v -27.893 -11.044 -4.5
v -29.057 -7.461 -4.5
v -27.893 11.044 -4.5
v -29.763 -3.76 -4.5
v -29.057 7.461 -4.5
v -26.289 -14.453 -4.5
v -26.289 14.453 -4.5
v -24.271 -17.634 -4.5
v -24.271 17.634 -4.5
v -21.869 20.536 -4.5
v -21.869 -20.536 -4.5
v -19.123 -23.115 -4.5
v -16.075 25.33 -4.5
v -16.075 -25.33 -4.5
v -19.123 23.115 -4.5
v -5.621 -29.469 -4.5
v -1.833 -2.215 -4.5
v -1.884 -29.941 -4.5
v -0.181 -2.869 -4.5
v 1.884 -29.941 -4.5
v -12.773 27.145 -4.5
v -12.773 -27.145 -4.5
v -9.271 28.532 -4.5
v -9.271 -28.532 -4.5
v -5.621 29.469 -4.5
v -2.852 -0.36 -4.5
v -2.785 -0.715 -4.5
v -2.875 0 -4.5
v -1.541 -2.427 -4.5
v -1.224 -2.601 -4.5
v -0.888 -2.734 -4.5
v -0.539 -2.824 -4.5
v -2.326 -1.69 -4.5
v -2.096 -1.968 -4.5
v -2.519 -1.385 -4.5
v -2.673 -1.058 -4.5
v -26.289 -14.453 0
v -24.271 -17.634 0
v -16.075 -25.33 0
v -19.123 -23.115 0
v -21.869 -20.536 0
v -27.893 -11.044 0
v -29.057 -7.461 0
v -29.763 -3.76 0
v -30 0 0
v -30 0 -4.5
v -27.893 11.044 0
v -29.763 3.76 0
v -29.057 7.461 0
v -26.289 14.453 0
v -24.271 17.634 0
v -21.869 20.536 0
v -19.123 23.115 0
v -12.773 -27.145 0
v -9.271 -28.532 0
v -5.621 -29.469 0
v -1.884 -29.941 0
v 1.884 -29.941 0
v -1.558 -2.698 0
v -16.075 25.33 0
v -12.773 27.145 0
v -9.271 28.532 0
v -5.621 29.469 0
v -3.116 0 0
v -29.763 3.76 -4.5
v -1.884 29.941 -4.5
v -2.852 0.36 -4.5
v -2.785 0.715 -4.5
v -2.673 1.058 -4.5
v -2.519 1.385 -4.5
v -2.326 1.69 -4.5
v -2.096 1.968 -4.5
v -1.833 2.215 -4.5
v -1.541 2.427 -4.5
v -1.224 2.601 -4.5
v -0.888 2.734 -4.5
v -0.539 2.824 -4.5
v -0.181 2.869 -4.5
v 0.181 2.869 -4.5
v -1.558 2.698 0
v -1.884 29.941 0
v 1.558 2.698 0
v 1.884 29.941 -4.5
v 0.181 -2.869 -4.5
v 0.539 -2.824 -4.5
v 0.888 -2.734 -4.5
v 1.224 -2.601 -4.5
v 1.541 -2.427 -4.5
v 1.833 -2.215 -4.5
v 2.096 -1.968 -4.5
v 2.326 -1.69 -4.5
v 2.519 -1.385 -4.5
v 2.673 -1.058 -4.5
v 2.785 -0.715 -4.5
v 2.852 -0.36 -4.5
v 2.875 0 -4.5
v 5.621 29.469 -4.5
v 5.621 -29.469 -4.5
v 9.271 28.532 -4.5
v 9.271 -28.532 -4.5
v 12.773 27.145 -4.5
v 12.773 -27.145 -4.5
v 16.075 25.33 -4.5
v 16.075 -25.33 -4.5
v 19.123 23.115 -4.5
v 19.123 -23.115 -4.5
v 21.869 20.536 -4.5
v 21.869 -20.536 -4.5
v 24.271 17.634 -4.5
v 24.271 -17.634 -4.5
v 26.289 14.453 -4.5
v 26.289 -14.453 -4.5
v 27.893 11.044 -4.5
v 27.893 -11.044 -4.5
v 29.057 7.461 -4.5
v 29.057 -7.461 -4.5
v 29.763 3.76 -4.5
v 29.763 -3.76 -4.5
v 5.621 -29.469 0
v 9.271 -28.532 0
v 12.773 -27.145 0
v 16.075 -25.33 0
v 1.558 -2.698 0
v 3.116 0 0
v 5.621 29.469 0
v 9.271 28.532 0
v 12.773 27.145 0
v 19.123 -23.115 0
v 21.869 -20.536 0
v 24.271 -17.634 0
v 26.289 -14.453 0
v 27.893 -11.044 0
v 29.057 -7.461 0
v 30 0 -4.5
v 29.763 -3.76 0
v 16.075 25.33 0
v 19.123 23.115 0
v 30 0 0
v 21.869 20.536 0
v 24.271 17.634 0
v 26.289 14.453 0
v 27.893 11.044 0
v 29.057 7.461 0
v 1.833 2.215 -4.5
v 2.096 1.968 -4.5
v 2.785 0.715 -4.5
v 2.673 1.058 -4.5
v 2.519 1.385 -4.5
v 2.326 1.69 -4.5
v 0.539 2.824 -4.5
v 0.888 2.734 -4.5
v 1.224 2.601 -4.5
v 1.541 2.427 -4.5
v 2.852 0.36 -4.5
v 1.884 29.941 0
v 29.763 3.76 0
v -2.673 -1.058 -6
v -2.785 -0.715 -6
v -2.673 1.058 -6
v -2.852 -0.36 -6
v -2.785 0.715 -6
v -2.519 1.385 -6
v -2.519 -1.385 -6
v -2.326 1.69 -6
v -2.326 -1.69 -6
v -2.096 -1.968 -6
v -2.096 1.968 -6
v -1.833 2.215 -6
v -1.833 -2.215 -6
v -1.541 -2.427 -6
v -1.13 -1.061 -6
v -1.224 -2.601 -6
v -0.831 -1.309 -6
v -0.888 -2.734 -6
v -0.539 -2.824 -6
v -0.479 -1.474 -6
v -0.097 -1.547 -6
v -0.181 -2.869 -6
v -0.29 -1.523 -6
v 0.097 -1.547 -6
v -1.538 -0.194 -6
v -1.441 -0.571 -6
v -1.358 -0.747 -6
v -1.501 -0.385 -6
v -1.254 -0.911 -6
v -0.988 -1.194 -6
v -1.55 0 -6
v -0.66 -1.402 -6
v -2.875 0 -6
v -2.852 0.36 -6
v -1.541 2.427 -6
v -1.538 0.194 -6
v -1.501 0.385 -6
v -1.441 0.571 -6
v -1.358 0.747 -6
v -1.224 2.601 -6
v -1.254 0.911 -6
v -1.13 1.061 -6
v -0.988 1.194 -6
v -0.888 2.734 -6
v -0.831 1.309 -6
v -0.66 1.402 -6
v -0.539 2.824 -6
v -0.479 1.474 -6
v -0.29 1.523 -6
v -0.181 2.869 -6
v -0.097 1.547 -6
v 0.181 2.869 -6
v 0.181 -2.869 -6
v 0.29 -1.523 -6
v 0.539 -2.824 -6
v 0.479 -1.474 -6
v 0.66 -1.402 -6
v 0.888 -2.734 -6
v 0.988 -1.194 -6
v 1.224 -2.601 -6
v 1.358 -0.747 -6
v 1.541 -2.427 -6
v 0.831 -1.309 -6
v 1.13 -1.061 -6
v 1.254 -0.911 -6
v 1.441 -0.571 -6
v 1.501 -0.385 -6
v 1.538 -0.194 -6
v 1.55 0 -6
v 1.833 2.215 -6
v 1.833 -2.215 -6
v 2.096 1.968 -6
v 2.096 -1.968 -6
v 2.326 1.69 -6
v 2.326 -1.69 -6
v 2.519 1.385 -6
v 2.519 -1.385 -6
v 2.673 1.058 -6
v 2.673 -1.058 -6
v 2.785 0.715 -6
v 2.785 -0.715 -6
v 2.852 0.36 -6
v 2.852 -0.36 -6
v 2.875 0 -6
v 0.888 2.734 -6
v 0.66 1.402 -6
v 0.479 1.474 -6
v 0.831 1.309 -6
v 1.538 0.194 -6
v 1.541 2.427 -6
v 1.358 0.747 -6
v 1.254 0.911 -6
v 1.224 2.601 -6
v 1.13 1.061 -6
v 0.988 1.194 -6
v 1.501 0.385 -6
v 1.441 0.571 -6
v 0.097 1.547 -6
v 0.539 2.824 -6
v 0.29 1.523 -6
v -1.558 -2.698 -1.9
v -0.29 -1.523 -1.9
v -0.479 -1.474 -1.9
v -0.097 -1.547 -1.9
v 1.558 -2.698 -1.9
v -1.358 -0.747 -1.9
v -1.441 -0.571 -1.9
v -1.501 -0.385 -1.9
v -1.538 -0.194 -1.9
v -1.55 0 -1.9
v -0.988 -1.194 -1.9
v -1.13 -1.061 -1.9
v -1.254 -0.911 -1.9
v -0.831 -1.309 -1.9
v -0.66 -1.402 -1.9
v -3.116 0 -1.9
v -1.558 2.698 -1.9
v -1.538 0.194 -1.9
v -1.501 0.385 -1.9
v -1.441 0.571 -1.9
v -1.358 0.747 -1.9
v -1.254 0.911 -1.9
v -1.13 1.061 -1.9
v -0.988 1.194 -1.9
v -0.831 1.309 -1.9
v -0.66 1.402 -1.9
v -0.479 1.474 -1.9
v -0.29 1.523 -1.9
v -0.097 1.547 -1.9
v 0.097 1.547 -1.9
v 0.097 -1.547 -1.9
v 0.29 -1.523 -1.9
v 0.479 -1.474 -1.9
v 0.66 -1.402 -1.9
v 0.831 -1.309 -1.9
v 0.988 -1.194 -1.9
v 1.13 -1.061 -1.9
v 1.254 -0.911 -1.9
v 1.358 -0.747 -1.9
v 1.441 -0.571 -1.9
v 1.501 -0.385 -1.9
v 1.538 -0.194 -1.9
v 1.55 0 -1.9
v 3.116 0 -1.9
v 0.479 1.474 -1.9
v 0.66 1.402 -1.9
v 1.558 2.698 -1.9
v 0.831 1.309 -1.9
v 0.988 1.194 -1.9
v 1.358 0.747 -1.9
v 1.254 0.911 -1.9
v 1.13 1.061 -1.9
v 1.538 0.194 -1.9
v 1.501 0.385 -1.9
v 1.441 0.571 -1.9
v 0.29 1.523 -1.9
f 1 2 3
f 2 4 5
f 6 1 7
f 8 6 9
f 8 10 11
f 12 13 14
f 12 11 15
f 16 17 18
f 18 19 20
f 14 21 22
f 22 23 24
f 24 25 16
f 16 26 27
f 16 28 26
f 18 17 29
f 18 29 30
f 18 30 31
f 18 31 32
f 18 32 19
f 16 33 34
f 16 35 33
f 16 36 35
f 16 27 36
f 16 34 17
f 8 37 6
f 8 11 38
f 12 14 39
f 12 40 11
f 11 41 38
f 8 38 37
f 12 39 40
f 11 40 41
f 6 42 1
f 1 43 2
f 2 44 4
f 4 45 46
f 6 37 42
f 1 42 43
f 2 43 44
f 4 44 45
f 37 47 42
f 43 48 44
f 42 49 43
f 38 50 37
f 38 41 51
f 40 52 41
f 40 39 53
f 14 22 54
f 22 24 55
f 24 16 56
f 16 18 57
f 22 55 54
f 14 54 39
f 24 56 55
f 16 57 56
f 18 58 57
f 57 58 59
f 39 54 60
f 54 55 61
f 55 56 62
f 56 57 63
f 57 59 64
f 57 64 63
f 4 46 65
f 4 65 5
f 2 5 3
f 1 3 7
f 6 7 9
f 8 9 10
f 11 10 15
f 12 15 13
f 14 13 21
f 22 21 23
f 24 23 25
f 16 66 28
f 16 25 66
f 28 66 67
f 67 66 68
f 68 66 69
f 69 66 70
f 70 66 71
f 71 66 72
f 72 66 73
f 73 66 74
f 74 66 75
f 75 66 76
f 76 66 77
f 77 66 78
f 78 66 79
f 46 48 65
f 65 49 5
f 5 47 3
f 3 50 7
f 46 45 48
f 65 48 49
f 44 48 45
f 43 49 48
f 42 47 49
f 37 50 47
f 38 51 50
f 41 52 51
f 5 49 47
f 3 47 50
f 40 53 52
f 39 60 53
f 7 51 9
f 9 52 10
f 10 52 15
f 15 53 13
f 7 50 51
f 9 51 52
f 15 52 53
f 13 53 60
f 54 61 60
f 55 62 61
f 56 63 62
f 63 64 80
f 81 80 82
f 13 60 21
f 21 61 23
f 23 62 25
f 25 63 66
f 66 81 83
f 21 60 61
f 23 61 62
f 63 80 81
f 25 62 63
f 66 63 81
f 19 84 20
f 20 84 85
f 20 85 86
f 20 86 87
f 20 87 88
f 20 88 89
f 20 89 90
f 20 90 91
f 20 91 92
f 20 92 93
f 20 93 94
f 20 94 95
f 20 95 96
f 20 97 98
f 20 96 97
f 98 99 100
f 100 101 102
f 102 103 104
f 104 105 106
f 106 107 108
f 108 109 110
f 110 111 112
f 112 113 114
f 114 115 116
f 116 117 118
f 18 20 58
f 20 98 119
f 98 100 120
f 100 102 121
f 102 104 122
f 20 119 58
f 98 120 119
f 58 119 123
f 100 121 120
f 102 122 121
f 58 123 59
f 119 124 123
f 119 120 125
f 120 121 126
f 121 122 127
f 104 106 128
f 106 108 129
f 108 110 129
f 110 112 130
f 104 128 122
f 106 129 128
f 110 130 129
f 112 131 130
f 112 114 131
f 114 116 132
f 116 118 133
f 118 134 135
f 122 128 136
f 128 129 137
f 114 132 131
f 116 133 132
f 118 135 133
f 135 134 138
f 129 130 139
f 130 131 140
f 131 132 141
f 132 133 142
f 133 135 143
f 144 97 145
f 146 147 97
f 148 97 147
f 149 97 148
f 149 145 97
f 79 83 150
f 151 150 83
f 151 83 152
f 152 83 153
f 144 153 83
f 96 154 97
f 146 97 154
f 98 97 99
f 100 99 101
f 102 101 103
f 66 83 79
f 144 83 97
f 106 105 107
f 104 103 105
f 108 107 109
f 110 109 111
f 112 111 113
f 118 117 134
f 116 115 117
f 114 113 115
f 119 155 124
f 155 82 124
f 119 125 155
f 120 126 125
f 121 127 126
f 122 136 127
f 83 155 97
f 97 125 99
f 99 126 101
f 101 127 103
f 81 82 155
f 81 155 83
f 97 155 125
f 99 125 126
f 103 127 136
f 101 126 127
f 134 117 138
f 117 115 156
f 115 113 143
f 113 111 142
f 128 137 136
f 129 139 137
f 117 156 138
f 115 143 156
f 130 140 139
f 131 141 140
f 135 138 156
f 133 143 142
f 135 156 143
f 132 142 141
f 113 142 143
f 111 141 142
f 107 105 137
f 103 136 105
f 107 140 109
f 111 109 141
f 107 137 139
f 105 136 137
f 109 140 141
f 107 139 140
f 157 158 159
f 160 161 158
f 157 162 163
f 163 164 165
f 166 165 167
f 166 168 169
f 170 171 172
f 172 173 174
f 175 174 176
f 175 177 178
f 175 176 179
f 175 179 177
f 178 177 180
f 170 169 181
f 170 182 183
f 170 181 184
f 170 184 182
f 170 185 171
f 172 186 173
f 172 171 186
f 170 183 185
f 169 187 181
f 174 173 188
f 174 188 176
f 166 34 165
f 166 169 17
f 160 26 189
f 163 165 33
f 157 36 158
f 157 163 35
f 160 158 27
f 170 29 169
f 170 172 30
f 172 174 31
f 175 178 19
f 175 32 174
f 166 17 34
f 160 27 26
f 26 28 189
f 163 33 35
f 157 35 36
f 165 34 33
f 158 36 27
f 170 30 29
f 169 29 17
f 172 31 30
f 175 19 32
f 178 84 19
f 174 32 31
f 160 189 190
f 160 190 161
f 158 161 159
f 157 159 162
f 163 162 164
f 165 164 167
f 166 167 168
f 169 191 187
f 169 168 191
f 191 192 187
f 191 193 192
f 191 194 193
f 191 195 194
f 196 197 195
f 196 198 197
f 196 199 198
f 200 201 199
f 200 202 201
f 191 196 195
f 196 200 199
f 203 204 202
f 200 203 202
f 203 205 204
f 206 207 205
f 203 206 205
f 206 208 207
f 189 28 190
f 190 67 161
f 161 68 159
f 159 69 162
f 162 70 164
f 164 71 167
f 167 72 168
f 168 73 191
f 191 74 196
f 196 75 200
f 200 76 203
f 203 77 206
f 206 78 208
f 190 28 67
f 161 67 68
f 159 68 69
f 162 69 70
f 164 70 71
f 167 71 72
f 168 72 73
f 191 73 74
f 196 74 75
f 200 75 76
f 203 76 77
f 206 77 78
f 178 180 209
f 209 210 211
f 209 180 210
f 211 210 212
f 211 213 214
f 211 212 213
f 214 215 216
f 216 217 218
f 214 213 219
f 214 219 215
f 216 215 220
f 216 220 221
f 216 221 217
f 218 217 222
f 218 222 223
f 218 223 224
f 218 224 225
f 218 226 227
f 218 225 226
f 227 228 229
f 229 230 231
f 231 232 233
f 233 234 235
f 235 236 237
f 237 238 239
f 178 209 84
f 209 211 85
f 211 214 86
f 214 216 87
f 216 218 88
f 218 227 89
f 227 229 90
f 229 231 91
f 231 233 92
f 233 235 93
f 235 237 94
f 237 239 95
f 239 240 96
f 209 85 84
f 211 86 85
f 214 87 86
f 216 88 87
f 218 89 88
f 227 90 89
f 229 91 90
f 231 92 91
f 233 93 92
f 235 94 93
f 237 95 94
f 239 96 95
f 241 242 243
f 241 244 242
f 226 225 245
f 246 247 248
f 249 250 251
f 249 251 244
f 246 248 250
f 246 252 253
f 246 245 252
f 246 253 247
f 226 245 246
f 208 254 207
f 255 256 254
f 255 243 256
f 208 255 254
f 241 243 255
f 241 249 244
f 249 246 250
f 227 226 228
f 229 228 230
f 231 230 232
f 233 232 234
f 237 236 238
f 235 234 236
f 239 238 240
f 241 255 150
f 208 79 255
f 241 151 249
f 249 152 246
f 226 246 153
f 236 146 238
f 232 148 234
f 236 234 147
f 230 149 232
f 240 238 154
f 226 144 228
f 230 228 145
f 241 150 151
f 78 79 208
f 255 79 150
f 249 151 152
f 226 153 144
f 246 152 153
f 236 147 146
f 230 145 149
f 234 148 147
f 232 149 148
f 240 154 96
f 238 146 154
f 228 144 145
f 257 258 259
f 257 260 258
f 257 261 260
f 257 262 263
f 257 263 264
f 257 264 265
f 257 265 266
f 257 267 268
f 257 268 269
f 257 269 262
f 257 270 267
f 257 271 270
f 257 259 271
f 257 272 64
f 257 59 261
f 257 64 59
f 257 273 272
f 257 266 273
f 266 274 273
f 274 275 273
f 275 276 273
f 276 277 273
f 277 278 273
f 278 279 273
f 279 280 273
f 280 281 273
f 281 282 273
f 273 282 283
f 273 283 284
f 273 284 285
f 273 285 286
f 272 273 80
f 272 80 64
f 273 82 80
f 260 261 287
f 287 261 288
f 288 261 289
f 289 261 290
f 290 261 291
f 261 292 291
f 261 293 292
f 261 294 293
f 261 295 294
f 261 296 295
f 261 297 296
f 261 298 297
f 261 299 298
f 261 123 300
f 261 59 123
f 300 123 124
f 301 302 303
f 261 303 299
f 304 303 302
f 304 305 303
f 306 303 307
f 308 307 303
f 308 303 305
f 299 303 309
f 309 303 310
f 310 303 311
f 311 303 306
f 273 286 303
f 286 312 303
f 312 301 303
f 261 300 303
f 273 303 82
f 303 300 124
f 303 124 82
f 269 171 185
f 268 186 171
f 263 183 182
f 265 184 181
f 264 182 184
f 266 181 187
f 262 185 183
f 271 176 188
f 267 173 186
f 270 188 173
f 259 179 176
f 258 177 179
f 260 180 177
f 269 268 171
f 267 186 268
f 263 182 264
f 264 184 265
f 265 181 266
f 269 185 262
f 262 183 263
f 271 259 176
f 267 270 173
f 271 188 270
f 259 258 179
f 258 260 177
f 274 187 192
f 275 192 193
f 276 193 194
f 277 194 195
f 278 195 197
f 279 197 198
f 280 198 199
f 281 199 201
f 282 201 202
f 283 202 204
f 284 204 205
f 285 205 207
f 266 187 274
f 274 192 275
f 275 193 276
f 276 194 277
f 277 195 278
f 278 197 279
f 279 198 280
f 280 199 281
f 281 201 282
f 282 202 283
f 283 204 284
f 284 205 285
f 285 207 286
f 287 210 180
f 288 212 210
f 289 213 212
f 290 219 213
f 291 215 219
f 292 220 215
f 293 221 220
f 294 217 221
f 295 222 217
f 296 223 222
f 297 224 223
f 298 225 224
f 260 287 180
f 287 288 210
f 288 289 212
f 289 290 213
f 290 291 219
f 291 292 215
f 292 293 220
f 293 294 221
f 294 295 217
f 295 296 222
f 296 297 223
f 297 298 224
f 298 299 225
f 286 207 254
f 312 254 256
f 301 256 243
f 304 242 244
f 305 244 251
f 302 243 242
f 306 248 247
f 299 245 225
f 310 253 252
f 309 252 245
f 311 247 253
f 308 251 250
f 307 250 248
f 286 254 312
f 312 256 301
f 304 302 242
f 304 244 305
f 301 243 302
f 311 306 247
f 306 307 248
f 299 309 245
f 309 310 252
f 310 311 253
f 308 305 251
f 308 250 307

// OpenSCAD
$fn = 50;


difference() {
	union() {
		translate(v = [0, 0, -4.5000000000]) {
			cylinder(h = 4.5000000000, r = 30.0000000000);
		}
		#translate(v = [0, 0, -6.0000000000]) {
			cylinder(h = 6, r = 2.8750000000);
		}
	}
	union() {
		translate(v = [0, 0, 0]) {
			rotate(a = [0, 0, 0]) {
				difference() {
					union() {
						translate(v = [0, 0, -1.9000000000]) {
							linear_extrude(height = 1.9000000000) {
								polygon(points = [[3.1158000000, 0.0000000000], [1.5579000000, 2.6983619531], [-1.5579000000, 2.6983619531], [-3.1158000000, 0.0000000000], [-1.5579000000, -2.6983619531], [1.5579000000, -2.6983619531]]);
							}
						}
					}
					union();
				}
			}
		}
		#translate(v = [0, 0, -100.0000000000]) {
			cylinder(h = 200, r = 1.5500000000);
		}
	}
}
